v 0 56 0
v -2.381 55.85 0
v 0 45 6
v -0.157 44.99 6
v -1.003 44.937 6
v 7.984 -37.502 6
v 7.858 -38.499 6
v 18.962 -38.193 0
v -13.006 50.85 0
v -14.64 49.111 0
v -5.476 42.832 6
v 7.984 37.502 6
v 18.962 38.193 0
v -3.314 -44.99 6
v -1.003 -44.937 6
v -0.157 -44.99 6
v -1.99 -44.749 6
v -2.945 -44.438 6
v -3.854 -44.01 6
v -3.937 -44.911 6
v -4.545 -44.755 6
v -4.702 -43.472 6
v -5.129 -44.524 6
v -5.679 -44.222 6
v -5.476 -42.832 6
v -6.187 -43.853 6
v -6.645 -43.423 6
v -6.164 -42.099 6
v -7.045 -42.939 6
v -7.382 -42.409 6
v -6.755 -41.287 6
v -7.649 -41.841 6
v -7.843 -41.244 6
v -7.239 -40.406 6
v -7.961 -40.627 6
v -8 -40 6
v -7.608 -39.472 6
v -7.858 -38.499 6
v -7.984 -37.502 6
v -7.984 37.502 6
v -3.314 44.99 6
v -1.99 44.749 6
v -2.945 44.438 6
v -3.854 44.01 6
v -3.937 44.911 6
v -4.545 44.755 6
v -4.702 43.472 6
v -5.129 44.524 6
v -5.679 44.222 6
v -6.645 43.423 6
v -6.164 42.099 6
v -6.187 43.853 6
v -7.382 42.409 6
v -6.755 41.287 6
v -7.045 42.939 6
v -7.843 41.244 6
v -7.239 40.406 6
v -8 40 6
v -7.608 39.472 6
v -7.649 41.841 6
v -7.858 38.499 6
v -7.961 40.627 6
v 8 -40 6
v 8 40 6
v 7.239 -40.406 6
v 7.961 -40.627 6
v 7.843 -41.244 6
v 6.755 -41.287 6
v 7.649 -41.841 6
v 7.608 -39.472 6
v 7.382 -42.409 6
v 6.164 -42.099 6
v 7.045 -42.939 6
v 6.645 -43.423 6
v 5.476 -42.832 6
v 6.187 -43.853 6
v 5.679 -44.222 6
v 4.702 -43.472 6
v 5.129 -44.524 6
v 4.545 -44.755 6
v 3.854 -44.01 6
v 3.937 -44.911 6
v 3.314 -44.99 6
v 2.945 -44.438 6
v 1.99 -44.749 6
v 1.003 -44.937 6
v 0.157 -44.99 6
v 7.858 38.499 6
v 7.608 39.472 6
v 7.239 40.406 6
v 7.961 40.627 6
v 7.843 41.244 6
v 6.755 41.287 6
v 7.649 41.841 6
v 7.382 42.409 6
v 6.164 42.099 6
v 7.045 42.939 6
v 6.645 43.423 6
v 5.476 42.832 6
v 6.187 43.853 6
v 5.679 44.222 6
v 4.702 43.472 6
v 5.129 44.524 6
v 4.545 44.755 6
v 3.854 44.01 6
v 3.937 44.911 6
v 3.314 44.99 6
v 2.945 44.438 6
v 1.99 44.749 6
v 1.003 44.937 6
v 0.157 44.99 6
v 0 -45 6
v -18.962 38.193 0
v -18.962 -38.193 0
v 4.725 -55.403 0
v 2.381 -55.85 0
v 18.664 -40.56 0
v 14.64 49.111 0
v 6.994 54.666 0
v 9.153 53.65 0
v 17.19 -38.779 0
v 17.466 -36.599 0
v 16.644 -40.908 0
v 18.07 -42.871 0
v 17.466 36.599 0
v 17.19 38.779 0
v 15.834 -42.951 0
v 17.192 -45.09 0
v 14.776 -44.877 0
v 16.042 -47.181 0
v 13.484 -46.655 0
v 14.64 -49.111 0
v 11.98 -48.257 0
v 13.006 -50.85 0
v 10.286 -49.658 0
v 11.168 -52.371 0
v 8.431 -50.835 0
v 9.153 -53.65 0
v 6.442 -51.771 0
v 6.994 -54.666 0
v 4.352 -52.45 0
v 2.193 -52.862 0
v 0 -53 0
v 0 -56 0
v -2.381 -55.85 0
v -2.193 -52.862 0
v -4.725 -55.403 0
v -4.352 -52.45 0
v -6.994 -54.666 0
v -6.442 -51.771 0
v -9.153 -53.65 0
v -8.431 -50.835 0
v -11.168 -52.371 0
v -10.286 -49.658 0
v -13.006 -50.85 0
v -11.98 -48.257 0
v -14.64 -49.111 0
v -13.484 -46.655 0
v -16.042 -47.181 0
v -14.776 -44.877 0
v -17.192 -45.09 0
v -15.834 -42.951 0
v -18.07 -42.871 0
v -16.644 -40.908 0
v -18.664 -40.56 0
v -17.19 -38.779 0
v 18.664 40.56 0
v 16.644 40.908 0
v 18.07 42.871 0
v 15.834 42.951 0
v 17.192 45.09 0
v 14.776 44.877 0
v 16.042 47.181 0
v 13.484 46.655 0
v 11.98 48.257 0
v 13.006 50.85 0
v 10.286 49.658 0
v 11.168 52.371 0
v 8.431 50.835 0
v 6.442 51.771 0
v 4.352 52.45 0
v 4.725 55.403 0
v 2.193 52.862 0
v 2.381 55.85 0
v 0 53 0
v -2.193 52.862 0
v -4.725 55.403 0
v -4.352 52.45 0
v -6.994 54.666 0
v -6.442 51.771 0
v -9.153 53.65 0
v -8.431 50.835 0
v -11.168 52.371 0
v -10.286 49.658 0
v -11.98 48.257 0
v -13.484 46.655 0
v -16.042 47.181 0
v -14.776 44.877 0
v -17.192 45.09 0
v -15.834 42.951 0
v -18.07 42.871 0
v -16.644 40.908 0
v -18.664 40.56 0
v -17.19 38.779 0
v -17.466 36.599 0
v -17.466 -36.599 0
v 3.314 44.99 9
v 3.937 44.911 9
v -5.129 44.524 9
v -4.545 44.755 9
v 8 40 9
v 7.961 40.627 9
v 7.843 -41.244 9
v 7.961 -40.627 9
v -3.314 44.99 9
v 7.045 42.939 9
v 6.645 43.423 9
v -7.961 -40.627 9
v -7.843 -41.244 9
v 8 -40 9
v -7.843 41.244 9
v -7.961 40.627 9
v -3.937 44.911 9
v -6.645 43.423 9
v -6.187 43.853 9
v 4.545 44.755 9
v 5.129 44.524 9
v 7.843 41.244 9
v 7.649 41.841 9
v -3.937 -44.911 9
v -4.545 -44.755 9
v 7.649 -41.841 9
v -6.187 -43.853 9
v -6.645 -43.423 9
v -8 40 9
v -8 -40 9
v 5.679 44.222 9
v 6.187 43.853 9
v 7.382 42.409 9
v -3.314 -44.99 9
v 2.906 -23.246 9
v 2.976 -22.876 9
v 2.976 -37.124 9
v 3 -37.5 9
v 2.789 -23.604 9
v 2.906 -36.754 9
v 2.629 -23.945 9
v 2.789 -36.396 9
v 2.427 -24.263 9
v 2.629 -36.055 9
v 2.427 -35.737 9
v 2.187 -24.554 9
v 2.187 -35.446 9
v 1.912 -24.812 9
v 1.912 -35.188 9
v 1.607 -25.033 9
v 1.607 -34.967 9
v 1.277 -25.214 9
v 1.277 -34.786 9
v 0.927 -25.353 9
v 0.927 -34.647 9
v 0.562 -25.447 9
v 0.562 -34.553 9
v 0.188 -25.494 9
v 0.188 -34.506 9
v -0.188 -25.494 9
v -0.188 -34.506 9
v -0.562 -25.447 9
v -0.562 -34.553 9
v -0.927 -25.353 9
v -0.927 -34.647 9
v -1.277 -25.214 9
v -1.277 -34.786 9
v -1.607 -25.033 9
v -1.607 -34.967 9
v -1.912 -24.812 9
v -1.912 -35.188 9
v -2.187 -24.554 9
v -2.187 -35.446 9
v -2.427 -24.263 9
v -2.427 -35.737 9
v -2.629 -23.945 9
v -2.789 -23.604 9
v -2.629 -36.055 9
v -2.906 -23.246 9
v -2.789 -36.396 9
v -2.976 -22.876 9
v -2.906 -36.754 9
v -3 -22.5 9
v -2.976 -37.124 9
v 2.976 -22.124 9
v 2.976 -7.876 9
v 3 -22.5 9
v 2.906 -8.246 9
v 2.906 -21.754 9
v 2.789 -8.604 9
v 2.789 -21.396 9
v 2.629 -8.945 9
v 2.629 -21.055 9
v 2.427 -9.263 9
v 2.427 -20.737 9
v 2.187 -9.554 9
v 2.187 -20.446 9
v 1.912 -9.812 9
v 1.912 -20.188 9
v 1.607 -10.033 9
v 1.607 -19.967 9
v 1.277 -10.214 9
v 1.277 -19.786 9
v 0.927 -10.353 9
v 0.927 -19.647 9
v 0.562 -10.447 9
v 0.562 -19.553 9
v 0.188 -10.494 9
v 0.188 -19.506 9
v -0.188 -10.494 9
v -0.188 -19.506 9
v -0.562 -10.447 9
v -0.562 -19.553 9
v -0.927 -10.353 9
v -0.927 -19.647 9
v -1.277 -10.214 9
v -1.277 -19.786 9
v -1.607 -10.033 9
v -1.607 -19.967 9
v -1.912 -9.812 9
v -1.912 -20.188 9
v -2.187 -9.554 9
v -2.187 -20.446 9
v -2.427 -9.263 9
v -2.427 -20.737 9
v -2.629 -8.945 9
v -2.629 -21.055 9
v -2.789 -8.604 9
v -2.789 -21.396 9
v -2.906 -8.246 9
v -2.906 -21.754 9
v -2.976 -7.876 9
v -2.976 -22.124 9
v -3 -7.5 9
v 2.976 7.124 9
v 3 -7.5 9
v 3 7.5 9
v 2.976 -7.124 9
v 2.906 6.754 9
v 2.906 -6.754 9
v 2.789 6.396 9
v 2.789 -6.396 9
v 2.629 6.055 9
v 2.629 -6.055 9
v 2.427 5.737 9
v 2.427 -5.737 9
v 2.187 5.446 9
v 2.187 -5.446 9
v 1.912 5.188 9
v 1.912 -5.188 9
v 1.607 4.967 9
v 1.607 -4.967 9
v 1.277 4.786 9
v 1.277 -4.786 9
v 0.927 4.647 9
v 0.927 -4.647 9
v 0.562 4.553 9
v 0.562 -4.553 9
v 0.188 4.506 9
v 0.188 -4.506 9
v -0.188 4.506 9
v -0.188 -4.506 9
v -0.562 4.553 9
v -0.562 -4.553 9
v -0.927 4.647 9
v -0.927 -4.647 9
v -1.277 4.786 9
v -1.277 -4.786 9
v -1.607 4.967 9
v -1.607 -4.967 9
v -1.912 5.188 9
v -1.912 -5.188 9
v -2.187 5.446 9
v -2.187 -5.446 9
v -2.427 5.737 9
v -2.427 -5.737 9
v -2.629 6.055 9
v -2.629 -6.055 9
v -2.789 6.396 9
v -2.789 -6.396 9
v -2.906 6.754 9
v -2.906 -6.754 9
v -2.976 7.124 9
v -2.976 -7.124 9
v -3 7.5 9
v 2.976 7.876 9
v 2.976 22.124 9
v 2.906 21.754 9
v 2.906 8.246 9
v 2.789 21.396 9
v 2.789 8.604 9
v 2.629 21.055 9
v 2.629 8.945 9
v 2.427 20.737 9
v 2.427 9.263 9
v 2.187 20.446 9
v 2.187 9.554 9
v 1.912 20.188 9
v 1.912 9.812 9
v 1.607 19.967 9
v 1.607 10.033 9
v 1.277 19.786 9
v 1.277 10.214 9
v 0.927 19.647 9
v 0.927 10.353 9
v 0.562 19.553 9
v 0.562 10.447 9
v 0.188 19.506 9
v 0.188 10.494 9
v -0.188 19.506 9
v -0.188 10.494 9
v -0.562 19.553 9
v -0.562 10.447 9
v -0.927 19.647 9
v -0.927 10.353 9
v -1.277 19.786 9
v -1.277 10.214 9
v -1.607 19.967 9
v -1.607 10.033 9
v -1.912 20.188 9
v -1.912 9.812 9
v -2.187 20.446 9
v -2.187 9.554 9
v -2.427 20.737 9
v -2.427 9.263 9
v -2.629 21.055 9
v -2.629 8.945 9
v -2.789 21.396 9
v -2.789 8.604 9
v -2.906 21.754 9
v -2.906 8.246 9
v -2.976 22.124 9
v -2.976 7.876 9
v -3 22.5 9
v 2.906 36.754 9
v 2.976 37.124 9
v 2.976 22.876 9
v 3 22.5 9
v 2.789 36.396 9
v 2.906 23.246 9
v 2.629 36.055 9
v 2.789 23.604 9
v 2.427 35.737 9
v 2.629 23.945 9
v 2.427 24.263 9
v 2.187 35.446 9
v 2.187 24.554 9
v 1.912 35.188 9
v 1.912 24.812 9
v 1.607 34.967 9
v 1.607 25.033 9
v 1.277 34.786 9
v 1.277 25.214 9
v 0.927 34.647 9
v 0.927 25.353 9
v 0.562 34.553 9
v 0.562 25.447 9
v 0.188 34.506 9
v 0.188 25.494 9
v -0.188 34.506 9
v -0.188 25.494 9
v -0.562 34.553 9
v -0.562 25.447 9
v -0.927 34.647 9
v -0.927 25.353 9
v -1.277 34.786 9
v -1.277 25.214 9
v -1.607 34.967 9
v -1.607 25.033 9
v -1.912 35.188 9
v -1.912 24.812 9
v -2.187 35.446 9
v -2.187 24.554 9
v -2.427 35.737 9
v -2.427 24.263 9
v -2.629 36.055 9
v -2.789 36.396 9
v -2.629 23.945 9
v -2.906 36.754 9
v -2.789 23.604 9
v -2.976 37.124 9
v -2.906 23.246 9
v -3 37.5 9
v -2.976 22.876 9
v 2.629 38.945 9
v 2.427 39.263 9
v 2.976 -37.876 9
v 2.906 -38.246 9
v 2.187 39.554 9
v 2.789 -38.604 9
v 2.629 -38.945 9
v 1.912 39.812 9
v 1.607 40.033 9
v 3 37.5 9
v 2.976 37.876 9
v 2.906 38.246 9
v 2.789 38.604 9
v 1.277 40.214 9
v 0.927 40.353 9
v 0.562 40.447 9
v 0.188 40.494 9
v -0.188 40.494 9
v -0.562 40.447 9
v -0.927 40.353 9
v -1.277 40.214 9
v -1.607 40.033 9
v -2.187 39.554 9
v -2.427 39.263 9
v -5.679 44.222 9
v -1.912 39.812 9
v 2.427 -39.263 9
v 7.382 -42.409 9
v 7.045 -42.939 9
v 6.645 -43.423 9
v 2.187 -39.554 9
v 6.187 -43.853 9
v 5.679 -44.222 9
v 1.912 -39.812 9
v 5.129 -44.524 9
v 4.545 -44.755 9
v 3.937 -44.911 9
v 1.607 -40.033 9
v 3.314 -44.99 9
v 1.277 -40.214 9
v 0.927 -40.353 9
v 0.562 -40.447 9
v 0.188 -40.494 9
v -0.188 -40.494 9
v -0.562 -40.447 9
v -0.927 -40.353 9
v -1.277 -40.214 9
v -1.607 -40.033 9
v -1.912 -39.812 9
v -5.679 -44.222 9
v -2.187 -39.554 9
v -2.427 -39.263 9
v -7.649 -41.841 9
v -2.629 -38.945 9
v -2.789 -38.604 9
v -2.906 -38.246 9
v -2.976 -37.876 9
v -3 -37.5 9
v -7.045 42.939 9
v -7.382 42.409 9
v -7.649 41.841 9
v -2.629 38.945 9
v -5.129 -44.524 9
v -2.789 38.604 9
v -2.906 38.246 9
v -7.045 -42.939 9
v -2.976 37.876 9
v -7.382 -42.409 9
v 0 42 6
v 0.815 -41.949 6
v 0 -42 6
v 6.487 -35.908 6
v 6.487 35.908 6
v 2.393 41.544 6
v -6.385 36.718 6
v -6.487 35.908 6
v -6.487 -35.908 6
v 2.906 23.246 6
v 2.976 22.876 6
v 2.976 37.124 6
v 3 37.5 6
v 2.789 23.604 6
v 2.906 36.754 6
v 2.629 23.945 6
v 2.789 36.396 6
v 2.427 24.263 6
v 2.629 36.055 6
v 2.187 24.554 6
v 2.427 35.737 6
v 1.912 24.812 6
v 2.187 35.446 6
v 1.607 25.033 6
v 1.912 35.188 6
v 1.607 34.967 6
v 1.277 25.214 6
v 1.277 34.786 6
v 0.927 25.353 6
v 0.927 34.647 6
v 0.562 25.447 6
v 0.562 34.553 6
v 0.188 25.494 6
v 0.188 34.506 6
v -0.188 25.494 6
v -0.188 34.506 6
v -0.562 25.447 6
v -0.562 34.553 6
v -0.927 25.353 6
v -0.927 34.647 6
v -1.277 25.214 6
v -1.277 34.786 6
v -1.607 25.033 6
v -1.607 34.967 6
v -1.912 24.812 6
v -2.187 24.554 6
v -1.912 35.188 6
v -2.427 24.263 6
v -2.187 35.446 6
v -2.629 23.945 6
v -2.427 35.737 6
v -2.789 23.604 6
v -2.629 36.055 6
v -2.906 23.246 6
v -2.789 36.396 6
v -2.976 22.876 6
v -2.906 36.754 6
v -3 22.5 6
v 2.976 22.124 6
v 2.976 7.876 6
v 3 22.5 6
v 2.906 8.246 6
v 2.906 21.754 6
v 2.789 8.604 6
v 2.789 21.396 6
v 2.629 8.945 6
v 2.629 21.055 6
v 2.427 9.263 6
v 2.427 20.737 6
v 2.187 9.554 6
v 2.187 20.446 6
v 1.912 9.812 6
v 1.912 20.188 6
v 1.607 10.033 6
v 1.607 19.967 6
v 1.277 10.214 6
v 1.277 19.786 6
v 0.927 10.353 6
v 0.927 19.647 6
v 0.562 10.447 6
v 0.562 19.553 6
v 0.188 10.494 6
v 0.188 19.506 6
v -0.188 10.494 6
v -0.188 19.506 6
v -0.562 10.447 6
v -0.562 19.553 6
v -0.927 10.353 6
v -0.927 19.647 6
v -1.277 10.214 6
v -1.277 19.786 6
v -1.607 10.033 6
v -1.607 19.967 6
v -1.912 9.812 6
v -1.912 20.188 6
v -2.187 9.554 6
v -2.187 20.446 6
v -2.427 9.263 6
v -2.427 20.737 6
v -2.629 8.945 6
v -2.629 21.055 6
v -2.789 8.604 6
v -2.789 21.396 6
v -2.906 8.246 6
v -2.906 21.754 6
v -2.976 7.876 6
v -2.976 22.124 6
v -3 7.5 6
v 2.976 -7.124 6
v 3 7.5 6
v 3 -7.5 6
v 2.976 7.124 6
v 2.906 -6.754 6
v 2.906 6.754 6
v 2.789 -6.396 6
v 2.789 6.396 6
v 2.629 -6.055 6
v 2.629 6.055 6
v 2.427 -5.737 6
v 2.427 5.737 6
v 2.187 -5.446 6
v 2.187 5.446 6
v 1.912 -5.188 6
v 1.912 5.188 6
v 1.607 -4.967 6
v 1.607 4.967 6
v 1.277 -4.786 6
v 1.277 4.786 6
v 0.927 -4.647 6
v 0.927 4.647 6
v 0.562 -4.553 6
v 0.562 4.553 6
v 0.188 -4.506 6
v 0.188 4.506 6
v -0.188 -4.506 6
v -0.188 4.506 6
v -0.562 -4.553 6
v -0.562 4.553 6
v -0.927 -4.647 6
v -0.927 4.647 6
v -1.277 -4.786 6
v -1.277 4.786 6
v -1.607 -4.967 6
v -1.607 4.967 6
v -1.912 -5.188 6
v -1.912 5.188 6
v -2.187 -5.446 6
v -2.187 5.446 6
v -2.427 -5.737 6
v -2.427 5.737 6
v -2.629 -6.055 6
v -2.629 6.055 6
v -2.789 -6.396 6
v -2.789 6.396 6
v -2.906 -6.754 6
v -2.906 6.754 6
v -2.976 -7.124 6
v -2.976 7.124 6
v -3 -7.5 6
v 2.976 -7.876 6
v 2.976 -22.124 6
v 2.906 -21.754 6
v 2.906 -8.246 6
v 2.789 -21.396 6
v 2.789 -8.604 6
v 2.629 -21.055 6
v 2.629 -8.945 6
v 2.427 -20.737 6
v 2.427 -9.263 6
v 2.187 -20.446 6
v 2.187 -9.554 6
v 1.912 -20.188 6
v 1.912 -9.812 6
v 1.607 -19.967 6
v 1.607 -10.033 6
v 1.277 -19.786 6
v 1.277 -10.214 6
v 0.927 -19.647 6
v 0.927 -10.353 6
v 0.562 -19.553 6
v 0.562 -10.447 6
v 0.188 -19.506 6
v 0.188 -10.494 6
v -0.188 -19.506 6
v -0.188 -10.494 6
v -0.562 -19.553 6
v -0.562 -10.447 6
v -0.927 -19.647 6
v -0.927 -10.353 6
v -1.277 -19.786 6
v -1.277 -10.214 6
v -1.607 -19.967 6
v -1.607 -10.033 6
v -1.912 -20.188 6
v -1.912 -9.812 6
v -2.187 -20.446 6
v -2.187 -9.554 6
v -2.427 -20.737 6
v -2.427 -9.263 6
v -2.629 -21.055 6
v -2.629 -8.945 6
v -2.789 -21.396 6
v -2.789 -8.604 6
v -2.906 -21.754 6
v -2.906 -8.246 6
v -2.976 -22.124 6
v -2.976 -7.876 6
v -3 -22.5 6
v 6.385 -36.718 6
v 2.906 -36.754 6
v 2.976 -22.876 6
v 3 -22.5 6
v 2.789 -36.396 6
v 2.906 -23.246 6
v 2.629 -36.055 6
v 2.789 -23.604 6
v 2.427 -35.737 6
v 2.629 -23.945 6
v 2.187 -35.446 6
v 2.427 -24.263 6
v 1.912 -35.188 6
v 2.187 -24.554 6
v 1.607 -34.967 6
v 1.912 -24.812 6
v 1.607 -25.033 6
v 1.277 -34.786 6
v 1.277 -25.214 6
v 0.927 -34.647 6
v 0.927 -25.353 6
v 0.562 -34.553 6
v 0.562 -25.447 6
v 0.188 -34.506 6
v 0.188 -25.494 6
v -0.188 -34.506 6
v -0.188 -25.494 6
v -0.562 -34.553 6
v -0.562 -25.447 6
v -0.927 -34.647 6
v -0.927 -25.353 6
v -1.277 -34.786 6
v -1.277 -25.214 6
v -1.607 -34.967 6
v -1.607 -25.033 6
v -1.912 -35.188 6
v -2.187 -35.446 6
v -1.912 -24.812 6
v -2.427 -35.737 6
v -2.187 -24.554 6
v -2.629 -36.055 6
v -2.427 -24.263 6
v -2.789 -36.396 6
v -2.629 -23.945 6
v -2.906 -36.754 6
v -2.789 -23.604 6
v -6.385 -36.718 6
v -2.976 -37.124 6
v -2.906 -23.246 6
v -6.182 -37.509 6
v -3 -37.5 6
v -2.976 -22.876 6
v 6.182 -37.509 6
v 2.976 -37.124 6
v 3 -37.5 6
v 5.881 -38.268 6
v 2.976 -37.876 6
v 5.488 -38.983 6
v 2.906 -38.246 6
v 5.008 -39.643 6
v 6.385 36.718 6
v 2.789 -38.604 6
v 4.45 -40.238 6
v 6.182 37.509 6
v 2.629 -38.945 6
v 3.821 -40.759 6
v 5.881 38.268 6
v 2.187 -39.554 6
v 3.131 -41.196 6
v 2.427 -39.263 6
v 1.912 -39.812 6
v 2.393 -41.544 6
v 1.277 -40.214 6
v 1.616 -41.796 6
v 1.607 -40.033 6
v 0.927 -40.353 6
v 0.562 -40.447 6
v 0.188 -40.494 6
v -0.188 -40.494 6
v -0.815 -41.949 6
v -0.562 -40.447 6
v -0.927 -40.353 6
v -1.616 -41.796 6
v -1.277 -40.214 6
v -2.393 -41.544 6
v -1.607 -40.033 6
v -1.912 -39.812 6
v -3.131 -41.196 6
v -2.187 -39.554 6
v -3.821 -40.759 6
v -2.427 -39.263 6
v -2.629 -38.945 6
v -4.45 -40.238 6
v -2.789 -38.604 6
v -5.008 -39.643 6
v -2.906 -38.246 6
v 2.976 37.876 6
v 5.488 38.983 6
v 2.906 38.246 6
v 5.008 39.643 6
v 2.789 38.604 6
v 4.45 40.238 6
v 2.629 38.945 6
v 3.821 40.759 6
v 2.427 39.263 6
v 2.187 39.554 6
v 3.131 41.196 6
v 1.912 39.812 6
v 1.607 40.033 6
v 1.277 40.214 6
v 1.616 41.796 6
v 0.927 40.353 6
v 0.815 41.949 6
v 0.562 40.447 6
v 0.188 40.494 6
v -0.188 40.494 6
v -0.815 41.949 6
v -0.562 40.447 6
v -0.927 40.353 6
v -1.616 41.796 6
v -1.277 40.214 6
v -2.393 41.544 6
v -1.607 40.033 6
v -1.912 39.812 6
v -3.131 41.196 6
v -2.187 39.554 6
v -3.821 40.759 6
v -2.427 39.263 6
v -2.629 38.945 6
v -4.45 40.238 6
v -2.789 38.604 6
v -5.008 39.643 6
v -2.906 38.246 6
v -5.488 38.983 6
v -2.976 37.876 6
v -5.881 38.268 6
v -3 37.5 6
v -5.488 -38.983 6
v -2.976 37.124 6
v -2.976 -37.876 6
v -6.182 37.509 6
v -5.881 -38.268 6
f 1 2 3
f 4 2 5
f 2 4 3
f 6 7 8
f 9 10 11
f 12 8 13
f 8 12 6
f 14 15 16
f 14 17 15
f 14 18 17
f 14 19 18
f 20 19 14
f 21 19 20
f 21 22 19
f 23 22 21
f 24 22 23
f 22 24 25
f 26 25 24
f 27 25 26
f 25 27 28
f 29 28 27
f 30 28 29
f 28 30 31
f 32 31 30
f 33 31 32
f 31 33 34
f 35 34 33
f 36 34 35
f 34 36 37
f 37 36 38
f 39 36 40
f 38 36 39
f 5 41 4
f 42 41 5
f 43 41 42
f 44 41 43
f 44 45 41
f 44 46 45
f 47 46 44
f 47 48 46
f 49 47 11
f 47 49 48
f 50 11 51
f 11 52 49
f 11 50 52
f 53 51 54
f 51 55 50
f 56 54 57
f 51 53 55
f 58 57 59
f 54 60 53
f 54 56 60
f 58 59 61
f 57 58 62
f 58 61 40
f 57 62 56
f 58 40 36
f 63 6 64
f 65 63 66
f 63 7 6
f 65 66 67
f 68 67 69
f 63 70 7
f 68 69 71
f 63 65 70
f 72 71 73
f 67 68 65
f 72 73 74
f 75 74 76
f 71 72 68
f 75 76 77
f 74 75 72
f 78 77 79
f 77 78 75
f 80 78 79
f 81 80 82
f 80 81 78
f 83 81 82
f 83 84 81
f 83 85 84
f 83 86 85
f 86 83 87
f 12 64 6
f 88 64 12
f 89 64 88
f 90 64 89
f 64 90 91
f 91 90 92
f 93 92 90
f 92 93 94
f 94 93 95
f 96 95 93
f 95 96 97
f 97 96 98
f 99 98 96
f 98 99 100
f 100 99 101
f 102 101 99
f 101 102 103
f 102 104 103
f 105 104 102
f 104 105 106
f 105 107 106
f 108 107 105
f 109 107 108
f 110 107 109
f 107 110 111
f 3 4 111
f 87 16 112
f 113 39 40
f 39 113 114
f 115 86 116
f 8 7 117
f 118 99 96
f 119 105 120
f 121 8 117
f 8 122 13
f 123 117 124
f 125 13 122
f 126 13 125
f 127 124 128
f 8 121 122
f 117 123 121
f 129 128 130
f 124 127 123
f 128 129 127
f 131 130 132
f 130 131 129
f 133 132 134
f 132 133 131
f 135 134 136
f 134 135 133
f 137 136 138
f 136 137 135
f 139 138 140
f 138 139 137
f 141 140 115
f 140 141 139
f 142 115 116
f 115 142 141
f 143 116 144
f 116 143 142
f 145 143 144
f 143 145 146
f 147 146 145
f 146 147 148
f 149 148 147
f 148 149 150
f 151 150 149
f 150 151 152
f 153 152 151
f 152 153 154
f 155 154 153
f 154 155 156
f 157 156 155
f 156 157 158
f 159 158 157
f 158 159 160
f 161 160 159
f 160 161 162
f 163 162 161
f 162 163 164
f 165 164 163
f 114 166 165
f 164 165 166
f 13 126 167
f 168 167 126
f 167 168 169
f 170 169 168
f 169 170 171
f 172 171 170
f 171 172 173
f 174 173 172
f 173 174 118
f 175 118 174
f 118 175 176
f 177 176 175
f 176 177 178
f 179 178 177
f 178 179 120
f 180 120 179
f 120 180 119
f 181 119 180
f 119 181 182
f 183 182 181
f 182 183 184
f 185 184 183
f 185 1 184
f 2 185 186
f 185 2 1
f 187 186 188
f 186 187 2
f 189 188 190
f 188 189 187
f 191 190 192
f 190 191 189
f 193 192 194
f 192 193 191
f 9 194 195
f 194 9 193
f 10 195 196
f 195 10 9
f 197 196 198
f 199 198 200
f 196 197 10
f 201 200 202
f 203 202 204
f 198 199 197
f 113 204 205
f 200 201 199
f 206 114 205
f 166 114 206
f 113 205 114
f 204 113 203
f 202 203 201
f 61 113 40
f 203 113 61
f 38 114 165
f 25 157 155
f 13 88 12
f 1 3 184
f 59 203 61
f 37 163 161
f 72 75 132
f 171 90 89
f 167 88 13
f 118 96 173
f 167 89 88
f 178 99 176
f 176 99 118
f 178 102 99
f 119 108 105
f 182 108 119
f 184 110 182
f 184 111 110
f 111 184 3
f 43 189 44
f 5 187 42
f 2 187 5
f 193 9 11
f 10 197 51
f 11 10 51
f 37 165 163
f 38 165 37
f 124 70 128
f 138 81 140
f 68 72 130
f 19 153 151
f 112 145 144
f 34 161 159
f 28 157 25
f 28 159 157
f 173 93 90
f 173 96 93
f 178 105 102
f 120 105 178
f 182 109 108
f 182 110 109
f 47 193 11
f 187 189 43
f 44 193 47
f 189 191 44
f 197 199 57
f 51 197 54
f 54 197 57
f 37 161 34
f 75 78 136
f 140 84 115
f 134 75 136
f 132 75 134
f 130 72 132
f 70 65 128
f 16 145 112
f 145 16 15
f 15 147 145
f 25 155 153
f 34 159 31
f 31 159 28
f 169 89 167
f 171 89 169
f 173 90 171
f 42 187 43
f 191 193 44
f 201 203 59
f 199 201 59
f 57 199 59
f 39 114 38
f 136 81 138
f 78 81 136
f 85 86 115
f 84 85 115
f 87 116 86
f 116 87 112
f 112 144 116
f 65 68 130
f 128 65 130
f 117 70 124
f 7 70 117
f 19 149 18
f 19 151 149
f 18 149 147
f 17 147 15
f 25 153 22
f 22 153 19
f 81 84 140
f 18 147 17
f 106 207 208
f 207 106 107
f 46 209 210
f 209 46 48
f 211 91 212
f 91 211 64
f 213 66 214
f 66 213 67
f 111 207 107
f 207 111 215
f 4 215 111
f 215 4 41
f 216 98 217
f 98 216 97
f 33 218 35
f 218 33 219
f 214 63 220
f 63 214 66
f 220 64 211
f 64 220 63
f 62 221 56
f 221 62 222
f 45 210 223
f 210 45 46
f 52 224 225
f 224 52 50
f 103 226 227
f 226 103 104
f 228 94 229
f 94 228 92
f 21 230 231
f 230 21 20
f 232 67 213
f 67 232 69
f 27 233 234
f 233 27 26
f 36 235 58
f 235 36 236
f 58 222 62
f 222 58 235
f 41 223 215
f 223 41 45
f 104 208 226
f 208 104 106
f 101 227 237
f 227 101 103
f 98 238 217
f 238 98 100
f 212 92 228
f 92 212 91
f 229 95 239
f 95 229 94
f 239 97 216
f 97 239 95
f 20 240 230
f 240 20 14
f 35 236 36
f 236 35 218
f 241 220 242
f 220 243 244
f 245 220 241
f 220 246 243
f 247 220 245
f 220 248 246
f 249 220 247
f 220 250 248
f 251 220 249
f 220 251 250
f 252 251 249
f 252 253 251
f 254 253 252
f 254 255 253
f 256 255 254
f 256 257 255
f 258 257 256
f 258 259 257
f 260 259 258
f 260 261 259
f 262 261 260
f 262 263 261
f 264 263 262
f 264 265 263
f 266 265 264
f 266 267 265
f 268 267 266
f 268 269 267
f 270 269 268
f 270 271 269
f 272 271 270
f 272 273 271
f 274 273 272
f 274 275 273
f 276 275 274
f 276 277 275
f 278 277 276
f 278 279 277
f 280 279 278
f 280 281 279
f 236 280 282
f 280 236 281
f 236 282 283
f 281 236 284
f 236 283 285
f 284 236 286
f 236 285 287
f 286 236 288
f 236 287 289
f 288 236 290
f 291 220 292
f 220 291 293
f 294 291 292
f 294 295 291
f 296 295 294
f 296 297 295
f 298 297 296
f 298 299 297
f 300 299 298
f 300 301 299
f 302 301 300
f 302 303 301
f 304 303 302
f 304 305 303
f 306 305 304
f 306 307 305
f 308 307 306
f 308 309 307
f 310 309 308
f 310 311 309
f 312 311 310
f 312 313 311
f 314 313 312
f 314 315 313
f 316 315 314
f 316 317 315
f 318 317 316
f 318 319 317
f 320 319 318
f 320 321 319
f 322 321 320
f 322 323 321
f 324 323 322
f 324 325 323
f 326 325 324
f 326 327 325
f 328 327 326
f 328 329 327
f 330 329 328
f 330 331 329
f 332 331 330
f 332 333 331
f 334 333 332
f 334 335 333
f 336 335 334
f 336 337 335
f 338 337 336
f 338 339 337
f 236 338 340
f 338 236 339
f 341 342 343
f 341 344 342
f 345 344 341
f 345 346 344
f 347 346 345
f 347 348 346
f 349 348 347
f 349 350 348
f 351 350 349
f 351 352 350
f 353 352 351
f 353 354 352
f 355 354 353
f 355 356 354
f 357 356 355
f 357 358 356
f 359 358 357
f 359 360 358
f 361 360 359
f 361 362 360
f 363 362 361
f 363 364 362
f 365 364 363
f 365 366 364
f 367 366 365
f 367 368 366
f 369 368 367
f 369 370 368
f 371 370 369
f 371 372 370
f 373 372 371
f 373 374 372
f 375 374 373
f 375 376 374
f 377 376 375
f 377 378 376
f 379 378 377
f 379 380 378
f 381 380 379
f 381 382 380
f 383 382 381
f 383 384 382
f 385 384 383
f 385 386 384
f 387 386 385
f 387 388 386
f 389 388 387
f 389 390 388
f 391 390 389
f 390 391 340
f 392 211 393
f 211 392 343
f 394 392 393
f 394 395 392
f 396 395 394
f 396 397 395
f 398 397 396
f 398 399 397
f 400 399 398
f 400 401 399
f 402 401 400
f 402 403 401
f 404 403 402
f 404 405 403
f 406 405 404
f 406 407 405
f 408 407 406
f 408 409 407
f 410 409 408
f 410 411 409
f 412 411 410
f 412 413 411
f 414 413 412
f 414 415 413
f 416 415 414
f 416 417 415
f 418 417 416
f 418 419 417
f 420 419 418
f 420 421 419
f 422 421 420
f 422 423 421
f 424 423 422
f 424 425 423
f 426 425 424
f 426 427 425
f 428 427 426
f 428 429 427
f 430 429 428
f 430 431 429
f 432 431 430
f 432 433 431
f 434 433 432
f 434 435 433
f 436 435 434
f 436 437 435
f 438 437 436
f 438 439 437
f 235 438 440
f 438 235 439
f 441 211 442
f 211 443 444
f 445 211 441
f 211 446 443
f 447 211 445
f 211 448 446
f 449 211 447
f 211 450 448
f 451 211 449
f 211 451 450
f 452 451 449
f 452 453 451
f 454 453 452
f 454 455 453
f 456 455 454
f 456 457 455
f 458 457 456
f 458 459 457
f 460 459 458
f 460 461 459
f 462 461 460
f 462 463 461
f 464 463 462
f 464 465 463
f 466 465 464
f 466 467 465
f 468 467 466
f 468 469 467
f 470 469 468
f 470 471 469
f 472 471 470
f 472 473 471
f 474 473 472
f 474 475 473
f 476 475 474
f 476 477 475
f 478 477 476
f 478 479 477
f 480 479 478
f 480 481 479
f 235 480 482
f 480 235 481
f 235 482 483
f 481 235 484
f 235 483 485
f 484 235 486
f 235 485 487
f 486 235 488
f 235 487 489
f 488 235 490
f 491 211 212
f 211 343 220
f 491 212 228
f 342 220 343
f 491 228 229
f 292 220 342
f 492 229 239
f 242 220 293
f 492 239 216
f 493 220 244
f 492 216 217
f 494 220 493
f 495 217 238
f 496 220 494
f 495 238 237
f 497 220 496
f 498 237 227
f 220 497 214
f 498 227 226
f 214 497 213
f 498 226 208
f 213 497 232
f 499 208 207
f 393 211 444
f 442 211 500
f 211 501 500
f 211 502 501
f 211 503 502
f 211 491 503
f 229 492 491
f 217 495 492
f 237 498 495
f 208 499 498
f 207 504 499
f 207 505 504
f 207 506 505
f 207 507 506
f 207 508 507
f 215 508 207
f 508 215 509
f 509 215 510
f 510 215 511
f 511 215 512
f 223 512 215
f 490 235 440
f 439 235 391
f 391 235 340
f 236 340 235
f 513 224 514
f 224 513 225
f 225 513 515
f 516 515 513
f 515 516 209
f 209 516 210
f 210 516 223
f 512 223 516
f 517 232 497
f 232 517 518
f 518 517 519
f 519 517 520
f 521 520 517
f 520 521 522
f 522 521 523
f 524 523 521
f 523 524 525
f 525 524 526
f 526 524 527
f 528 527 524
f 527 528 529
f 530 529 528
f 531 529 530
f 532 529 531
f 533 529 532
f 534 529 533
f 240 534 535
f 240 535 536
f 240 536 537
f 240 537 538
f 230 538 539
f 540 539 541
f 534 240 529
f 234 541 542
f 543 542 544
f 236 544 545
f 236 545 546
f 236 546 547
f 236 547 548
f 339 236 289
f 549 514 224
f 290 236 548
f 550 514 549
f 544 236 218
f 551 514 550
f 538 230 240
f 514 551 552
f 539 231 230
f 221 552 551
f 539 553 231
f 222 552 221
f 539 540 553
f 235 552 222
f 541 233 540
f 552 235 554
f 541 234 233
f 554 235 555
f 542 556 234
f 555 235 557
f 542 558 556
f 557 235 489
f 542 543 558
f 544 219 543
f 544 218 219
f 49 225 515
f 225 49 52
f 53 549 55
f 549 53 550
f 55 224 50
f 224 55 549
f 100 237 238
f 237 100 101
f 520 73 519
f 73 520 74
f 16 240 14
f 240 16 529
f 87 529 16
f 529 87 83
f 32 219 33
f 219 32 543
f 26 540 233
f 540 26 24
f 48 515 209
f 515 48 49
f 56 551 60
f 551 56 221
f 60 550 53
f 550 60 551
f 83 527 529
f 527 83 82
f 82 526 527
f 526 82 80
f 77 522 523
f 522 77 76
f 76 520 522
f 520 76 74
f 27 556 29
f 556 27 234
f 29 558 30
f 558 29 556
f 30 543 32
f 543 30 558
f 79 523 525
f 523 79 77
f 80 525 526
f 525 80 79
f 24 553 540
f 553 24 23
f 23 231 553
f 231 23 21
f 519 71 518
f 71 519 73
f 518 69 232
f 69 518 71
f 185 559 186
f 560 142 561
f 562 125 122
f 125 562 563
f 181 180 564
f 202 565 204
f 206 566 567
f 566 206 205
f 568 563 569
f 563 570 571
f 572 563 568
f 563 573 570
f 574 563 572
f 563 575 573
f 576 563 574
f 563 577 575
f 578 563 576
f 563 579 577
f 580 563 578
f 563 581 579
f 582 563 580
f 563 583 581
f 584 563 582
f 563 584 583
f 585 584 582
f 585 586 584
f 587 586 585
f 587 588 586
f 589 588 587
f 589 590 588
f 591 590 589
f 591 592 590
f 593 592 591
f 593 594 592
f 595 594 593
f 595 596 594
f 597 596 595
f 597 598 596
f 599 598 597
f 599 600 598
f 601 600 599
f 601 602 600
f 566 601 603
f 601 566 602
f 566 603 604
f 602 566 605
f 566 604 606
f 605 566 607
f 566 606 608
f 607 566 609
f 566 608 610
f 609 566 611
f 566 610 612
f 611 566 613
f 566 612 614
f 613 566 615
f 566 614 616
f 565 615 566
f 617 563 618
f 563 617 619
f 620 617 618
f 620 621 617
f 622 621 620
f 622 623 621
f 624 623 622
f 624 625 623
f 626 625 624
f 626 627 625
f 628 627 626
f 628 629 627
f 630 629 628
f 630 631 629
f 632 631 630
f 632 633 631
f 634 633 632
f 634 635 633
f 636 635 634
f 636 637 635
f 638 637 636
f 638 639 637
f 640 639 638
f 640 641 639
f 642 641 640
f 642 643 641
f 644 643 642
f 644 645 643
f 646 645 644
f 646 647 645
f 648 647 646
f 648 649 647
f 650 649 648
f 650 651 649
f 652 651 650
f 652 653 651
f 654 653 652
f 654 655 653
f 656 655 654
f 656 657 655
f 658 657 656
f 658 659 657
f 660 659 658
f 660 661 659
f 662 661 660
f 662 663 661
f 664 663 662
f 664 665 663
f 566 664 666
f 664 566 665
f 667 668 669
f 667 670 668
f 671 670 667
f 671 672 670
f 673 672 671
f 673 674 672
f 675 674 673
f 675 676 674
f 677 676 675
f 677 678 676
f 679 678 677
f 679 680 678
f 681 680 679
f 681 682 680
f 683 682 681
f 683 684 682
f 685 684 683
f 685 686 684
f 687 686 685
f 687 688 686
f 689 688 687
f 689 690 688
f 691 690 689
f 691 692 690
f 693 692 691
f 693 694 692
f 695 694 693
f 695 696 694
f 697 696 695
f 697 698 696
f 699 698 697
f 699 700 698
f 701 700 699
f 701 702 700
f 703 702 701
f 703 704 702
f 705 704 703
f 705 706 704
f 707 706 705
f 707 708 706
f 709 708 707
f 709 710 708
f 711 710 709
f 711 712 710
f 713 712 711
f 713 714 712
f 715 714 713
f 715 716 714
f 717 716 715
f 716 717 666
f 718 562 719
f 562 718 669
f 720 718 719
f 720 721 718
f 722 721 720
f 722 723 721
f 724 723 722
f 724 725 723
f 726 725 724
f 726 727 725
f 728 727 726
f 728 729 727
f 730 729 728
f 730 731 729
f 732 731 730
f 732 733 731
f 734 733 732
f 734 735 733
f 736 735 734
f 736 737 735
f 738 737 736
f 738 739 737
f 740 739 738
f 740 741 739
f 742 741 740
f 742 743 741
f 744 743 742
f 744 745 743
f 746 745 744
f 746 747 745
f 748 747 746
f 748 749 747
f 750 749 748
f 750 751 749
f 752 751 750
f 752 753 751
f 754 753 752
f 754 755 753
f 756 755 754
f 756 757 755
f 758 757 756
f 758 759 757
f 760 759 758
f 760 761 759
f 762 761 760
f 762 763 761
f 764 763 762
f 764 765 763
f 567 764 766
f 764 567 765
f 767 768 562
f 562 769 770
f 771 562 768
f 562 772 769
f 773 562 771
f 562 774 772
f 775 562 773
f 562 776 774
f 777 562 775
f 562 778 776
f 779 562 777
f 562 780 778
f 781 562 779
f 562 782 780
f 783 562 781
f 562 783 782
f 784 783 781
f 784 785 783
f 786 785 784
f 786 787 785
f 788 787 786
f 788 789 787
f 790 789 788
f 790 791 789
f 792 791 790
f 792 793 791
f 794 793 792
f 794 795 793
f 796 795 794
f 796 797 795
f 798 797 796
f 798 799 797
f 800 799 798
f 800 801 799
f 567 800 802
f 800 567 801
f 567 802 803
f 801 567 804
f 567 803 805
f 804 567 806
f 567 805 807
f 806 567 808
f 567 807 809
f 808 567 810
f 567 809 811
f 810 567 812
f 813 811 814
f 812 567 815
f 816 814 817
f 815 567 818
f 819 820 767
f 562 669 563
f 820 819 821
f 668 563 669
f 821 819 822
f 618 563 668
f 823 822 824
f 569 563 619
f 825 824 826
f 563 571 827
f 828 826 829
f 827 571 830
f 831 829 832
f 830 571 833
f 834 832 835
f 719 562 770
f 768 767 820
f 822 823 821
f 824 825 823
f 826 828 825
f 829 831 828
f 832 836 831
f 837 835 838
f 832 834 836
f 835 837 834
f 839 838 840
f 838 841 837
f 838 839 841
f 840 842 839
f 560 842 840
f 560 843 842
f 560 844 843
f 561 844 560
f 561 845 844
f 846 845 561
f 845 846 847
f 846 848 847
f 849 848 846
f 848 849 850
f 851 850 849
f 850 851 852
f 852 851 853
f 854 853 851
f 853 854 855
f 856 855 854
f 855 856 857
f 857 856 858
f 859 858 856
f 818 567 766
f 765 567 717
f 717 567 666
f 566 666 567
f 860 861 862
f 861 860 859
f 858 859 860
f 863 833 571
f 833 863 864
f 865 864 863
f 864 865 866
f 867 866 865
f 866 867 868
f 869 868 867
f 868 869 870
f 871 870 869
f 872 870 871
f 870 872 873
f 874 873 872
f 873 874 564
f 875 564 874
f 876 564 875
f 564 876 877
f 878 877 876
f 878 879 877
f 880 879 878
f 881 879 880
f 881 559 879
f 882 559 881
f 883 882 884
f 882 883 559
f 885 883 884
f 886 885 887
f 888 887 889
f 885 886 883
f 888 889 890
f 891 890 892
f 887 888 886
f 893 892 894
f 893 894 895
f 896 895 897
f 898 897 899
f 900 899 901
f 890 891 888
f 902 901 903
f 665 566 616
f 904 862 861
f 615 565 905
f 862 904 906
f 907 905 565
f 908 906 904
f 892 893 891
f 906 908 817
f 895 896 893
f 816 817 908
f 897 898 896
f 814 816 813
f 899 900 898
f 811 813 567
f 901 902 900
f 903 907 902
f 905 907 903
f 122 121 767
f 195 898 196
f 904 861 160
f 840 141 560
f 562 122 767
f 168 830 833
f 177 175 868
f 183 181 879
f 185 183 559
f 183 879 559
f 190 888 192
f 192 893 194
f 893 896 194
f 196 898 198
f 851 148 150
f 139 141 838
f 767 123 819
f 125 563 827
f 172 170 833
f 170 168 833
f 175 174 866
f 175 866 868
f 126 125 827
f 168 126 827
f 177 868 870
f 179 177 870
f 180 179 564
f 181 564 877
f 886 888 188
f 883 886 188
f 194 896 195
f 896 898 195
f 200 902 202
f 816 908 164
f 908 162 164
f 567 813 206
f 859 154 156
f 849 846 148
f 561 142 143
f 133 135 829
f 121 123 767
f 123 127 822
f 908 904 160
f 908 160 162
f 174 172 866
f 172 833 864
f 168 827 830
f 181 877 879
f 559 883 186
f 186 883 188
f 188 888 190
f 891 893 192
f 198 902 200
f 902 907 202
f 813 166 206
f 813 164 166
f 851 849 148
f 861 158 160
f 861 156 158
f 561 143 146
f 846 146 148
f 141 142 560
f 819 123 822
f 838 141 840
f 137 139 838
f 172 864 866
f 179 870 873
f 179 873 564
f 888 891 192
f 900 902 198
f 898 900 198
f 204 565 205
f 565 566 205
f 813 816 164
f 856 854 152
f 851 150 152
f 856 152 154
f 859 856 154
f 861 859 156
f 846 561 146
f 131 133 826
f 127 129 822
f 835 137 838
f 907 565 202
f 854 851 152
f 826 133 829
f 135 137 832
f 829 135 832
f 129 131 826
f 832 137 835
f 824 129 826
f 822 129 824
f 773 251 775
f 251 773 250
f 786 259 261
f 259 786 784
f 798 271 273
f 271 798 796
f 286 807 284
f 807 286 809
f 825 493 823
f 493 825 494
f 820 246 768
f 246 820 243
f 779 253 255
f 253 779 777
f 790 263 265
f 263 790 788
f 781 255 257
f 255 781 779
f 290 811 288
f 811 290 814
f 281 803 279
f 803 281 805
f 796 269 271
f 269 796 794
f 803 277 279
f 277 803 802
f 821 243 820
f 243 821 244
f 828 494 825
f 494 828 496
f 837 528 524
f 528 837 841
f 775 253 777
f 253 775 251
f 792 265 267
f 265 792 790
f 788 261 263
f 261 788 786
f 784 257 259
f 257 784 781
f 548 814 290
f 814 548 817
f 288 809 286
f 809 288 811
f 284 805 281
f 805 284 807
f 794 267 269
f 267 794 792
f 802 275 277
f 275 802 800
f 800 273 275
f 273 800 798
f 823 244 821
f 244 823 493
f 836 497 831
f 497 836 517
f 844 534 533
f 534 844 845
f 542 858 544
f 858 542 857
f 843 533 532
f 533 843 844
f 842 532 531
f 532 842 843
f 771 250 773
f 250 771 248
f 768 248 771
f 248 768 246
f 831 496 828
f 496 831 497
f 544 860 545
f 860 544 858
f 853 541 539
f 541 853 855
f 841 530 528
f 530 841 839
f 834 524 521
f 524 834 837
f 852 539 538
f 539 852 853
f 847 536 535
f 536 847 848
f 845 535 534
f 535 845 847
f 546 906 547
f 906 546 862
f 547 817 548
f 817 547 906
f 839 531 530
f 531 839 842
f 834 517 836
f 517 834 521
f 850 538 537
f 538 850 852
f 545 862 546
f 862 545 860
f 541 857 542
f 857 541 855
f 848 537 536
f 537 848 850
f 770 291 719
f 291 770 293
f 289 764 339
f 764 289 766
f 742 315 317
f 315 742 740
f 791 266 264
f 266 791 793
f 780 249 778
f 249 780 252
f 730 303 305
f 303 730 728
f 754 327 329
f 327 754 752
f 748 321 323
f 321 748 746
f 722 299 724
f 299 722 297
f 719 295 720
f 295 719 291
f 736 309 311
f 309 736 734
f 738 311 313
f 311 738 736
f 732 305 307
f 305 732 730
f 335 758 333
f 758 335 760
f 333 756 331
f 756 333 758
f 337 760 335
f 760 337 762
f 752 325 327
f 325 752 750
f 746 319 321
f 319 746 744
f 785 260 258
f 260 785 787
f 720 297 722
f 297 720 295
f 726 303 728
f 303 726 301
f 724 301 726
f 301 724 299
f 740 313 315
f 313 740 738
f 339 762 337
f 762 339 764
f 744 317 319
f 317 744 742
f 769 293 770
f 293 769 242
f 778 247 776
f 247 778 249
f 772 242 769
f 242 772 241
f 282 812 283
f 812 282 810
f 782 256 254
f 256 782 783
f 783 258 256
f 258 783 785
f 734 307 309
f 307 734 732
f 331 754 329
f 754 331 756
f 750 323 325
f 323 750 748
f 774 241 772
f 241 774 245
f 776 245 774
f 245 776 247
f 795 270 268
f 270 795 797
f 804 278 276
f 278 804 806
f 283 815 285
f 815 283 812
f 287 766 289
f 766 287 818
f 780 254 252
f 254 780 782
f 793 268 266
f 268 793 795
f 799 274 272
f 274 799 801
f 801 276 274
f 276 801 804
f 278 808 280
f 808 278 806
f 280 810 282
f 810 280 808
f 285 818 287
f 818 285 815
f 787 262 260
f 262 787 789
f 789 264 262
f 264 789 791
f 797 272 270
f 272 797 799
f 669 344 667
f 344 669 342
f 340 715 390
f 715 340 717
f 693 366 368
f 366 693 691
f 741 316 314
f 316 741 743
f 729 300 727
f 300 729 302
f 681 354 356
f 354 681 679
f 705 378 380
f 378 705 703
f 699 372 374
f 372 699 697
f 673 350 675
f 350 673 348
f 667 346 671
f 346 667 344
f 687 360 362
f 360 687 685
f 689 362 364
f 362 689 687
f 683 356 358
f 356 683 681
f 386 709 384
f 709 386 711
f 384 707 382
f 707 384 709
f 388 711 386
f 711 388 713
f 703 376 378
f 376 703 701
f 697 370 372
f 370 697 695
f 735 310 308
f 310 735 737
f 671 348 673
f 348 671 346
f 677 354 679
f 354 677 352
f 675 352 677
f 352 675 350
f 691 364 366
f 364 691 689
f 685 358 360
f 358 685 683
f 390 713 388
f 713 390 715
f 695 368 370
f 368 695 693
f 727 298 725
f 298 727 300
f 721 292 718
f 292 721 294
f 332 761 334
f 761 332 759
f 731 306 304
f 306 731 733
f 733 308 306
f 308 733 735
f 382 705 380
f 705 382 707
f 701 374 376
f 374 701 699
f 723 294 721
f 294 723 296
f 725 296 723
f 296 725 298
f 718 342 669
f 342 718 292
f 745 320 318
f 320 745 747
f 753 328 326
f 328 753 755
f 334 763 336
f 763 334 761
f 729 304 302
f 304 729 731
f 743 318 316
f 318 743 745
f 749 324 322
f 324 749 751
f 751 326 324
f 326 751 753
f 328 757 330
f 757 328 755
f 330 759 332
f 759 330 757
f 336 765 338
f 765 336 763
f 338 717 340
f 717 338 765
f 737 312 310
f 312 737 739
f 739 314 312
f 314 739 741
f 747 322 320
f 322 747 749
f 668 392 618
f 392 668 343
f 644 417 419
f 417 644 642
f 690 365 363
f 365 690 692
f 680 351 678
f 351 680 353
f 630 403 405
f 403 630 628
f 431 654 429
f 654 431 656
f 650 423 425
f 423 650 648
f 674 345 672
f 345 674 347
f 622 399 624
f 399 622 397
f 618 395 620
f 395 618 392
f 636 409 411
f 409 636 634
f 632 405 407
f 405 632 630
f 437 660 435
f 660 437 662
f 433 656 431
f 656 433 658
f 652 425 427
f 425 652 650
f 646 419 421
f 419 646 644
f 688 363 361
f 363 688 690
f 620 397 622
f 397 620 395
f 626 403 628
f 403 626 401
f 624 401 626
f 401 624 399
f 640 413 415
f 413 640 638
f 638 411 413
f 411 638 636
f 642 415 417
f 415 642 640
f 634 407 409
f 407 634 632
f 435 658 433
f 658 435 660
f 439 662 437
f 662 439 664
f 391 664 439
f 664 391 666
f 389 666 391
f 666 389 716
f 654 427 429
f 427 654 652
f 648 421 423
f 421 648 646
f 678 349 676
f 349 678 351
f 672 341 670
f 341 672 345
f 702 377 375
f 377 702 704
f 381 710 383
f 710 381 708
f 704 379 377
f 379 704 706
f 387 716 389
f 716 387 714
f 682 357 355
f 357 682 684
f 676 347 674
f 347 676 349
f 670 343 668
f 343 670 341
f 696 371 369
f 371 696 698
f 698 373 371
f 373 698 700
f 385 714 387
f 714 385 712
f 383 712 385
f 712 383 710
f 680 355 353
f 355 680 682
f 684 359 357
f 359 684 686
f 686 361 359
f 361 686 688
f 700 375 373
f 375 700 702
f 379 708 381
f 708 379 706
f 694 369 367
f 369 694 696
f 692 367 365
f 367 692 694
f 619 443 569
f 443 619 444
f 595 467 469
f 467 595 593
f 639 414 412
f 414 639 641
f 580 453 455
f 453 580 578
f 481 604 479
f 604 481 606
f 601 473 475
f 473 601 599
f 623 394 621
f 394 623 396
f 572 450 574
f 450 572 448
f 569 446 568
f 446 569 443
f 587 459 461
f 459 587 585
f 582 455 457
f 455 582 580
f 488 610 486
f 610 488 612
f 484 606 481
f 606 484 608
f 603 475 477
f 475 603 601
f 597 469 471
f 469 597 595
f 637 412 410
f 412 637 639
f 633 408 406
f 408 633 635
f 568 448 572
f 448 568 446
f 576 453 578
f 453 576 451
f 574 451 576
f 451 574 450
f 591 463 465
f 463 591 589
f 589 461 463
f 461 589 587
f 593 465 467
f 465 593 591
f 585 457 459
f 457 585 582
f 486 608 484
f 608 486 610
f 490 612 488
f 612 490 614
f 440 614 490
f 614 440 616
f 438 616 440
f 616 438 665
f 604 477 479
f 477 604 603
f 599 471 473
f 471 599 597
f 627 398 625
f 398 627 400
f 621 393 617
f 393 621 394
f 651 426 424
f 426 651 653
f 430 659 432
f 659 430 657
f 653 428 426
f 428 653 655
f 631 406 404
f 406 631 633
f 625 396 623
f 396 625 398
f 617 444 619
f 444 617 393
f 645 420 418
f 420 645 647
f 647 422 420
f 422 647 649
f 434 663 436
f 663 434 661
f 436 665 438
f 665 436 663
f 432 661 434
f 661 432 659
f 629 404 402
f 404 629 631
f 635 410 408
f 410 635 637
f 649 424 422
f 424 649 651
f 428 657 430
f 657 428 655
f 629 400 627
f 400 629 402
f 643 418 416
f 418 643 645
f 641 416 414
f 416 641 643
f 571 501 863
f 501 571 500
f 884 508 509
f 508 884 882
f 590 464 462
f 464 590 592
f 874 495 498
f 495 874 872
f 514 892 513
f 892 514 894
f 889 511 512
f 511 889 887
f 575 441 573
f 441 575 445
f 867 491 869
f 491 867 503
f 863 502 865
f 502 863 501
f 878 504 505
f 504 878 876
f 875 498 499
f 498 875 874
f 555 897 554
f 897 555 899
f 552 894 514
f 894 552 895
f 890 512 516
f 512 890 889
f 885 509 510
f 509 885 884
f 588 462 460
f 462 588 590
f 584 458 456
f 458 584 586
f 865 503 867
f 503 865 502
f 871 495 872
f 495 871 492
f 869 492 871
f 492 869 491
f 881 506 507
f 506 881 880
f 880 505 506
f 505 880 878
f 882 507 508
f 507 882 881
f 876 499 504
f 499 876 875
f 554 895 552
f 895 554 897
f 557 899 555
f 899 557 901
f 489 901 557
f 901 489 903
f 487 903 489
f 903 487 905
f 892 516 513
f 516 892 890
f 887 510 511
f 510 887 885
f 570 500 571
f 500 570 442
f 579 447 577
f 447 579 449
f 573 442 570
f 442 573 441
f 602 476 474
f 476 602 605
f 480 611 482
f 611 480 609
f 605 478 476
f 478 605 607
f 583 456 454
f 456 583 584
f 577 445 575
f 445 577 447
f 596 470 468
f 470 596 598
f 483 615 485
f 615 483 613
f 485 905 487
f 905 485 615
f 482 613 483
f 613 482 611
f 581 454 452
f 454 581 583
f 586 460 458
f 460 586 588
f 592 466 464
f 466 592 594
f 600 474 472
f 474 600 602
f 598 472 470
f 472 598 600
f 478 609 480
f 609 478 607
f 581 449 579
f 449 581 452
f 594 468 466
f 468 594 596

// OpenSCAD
$fn = 50;


difference() {
	union() {
		translate(v = [0, 0, 0]) {
			rotate(a = [0, 0, 90]) {
				difference() {
					union() {
						hull() {
							translate(v = [37.0000000000, 0, 0]) {
								cylinder(h = 6, r1 = 19.0000000000, r2 = 8.0000000000);
							}
							translate(v = [-37.0000000000, 0, 0]) {
								cylinder(h = 6, r1 = 19.0000000000, r2 = 8.0000000000);
							}
						}
					}
					union();
				}
			}
		}
		translate(v = [0, 0, 6]) {
			hull() {
				translate(v = [-3.0000000000, 40.0000000000, 0]) {
					cylinder(h = 3, r = 5);
				}
				translate(v = [3.0000000000, 40.0000000000, 0]) {
					cylinder(h = 3, r = 5);
				}
				translate(v = [-3.0000000000, -40.0000000000, 0]) {
					cylinder(h = 3, r = 5);
				}
				translate(v = [3.0000000000, -40.0000000000, 0]) {
					cylinder(h = 3, r = 5);
				}
			}
		}
	}
	union() {
		translate(v = [0, 0, 0]) {
			rotate(a = [0, 0, 90]) {
				difference() {
					union() {
						hull() {
							translate(v = [35.5000000000, 0, 0]) {
								cylinder(h = 6, r1 = 17.5000000000, r2 = 6.5000000000);
							}
							translate(v = [-35.5000000000, 0, 0]) {
								cylinder(h = 6, r1 = 17.5000000000, r2 = 6.5000000000);
							}
						}
					}
					union();
				}
			}
		}
		translate(v = [0.0000000000, -37.5000000000, 0]) {
			translate(v = [0, 0, -50]) {
				cylinder(h = 100, r = 3.0000000000);
			}
		}
		translate(v = [0.0000000000, -22.5000000000, 0]) {
			translate(v = [0, 0, -50]) {
				cylinder(h = 100, r = 3.0000000000);
			}
		}
		translate(v = [0.0000000000, -7.5000000000, 0]) {
			translate(v = [0, 0, -50]) {
				cylinder(h = 100, r = 3.0000000000);
			}
		}
		translate(v = [0.0000000000, 7.5000000000, 0]) {
			translate(v = [0, 0, -50]) {
				cylinder(h = 100, r = 3.0000000000);
			}
		}
		translate(v = [0.0000000000, 22.5000000000, 0]) {
			translate(v = [0, 0, -50]) {
				cylinder(h = 100, r = 3.0000000000);
			}
		}
		translate(v = [0.0000000000, 37.5000000000, 0]) {
			translate(v = [0, 0, -50]) {
				cylinder(h = 100, r = 3.0000000000);
			}
		}
	}
}
